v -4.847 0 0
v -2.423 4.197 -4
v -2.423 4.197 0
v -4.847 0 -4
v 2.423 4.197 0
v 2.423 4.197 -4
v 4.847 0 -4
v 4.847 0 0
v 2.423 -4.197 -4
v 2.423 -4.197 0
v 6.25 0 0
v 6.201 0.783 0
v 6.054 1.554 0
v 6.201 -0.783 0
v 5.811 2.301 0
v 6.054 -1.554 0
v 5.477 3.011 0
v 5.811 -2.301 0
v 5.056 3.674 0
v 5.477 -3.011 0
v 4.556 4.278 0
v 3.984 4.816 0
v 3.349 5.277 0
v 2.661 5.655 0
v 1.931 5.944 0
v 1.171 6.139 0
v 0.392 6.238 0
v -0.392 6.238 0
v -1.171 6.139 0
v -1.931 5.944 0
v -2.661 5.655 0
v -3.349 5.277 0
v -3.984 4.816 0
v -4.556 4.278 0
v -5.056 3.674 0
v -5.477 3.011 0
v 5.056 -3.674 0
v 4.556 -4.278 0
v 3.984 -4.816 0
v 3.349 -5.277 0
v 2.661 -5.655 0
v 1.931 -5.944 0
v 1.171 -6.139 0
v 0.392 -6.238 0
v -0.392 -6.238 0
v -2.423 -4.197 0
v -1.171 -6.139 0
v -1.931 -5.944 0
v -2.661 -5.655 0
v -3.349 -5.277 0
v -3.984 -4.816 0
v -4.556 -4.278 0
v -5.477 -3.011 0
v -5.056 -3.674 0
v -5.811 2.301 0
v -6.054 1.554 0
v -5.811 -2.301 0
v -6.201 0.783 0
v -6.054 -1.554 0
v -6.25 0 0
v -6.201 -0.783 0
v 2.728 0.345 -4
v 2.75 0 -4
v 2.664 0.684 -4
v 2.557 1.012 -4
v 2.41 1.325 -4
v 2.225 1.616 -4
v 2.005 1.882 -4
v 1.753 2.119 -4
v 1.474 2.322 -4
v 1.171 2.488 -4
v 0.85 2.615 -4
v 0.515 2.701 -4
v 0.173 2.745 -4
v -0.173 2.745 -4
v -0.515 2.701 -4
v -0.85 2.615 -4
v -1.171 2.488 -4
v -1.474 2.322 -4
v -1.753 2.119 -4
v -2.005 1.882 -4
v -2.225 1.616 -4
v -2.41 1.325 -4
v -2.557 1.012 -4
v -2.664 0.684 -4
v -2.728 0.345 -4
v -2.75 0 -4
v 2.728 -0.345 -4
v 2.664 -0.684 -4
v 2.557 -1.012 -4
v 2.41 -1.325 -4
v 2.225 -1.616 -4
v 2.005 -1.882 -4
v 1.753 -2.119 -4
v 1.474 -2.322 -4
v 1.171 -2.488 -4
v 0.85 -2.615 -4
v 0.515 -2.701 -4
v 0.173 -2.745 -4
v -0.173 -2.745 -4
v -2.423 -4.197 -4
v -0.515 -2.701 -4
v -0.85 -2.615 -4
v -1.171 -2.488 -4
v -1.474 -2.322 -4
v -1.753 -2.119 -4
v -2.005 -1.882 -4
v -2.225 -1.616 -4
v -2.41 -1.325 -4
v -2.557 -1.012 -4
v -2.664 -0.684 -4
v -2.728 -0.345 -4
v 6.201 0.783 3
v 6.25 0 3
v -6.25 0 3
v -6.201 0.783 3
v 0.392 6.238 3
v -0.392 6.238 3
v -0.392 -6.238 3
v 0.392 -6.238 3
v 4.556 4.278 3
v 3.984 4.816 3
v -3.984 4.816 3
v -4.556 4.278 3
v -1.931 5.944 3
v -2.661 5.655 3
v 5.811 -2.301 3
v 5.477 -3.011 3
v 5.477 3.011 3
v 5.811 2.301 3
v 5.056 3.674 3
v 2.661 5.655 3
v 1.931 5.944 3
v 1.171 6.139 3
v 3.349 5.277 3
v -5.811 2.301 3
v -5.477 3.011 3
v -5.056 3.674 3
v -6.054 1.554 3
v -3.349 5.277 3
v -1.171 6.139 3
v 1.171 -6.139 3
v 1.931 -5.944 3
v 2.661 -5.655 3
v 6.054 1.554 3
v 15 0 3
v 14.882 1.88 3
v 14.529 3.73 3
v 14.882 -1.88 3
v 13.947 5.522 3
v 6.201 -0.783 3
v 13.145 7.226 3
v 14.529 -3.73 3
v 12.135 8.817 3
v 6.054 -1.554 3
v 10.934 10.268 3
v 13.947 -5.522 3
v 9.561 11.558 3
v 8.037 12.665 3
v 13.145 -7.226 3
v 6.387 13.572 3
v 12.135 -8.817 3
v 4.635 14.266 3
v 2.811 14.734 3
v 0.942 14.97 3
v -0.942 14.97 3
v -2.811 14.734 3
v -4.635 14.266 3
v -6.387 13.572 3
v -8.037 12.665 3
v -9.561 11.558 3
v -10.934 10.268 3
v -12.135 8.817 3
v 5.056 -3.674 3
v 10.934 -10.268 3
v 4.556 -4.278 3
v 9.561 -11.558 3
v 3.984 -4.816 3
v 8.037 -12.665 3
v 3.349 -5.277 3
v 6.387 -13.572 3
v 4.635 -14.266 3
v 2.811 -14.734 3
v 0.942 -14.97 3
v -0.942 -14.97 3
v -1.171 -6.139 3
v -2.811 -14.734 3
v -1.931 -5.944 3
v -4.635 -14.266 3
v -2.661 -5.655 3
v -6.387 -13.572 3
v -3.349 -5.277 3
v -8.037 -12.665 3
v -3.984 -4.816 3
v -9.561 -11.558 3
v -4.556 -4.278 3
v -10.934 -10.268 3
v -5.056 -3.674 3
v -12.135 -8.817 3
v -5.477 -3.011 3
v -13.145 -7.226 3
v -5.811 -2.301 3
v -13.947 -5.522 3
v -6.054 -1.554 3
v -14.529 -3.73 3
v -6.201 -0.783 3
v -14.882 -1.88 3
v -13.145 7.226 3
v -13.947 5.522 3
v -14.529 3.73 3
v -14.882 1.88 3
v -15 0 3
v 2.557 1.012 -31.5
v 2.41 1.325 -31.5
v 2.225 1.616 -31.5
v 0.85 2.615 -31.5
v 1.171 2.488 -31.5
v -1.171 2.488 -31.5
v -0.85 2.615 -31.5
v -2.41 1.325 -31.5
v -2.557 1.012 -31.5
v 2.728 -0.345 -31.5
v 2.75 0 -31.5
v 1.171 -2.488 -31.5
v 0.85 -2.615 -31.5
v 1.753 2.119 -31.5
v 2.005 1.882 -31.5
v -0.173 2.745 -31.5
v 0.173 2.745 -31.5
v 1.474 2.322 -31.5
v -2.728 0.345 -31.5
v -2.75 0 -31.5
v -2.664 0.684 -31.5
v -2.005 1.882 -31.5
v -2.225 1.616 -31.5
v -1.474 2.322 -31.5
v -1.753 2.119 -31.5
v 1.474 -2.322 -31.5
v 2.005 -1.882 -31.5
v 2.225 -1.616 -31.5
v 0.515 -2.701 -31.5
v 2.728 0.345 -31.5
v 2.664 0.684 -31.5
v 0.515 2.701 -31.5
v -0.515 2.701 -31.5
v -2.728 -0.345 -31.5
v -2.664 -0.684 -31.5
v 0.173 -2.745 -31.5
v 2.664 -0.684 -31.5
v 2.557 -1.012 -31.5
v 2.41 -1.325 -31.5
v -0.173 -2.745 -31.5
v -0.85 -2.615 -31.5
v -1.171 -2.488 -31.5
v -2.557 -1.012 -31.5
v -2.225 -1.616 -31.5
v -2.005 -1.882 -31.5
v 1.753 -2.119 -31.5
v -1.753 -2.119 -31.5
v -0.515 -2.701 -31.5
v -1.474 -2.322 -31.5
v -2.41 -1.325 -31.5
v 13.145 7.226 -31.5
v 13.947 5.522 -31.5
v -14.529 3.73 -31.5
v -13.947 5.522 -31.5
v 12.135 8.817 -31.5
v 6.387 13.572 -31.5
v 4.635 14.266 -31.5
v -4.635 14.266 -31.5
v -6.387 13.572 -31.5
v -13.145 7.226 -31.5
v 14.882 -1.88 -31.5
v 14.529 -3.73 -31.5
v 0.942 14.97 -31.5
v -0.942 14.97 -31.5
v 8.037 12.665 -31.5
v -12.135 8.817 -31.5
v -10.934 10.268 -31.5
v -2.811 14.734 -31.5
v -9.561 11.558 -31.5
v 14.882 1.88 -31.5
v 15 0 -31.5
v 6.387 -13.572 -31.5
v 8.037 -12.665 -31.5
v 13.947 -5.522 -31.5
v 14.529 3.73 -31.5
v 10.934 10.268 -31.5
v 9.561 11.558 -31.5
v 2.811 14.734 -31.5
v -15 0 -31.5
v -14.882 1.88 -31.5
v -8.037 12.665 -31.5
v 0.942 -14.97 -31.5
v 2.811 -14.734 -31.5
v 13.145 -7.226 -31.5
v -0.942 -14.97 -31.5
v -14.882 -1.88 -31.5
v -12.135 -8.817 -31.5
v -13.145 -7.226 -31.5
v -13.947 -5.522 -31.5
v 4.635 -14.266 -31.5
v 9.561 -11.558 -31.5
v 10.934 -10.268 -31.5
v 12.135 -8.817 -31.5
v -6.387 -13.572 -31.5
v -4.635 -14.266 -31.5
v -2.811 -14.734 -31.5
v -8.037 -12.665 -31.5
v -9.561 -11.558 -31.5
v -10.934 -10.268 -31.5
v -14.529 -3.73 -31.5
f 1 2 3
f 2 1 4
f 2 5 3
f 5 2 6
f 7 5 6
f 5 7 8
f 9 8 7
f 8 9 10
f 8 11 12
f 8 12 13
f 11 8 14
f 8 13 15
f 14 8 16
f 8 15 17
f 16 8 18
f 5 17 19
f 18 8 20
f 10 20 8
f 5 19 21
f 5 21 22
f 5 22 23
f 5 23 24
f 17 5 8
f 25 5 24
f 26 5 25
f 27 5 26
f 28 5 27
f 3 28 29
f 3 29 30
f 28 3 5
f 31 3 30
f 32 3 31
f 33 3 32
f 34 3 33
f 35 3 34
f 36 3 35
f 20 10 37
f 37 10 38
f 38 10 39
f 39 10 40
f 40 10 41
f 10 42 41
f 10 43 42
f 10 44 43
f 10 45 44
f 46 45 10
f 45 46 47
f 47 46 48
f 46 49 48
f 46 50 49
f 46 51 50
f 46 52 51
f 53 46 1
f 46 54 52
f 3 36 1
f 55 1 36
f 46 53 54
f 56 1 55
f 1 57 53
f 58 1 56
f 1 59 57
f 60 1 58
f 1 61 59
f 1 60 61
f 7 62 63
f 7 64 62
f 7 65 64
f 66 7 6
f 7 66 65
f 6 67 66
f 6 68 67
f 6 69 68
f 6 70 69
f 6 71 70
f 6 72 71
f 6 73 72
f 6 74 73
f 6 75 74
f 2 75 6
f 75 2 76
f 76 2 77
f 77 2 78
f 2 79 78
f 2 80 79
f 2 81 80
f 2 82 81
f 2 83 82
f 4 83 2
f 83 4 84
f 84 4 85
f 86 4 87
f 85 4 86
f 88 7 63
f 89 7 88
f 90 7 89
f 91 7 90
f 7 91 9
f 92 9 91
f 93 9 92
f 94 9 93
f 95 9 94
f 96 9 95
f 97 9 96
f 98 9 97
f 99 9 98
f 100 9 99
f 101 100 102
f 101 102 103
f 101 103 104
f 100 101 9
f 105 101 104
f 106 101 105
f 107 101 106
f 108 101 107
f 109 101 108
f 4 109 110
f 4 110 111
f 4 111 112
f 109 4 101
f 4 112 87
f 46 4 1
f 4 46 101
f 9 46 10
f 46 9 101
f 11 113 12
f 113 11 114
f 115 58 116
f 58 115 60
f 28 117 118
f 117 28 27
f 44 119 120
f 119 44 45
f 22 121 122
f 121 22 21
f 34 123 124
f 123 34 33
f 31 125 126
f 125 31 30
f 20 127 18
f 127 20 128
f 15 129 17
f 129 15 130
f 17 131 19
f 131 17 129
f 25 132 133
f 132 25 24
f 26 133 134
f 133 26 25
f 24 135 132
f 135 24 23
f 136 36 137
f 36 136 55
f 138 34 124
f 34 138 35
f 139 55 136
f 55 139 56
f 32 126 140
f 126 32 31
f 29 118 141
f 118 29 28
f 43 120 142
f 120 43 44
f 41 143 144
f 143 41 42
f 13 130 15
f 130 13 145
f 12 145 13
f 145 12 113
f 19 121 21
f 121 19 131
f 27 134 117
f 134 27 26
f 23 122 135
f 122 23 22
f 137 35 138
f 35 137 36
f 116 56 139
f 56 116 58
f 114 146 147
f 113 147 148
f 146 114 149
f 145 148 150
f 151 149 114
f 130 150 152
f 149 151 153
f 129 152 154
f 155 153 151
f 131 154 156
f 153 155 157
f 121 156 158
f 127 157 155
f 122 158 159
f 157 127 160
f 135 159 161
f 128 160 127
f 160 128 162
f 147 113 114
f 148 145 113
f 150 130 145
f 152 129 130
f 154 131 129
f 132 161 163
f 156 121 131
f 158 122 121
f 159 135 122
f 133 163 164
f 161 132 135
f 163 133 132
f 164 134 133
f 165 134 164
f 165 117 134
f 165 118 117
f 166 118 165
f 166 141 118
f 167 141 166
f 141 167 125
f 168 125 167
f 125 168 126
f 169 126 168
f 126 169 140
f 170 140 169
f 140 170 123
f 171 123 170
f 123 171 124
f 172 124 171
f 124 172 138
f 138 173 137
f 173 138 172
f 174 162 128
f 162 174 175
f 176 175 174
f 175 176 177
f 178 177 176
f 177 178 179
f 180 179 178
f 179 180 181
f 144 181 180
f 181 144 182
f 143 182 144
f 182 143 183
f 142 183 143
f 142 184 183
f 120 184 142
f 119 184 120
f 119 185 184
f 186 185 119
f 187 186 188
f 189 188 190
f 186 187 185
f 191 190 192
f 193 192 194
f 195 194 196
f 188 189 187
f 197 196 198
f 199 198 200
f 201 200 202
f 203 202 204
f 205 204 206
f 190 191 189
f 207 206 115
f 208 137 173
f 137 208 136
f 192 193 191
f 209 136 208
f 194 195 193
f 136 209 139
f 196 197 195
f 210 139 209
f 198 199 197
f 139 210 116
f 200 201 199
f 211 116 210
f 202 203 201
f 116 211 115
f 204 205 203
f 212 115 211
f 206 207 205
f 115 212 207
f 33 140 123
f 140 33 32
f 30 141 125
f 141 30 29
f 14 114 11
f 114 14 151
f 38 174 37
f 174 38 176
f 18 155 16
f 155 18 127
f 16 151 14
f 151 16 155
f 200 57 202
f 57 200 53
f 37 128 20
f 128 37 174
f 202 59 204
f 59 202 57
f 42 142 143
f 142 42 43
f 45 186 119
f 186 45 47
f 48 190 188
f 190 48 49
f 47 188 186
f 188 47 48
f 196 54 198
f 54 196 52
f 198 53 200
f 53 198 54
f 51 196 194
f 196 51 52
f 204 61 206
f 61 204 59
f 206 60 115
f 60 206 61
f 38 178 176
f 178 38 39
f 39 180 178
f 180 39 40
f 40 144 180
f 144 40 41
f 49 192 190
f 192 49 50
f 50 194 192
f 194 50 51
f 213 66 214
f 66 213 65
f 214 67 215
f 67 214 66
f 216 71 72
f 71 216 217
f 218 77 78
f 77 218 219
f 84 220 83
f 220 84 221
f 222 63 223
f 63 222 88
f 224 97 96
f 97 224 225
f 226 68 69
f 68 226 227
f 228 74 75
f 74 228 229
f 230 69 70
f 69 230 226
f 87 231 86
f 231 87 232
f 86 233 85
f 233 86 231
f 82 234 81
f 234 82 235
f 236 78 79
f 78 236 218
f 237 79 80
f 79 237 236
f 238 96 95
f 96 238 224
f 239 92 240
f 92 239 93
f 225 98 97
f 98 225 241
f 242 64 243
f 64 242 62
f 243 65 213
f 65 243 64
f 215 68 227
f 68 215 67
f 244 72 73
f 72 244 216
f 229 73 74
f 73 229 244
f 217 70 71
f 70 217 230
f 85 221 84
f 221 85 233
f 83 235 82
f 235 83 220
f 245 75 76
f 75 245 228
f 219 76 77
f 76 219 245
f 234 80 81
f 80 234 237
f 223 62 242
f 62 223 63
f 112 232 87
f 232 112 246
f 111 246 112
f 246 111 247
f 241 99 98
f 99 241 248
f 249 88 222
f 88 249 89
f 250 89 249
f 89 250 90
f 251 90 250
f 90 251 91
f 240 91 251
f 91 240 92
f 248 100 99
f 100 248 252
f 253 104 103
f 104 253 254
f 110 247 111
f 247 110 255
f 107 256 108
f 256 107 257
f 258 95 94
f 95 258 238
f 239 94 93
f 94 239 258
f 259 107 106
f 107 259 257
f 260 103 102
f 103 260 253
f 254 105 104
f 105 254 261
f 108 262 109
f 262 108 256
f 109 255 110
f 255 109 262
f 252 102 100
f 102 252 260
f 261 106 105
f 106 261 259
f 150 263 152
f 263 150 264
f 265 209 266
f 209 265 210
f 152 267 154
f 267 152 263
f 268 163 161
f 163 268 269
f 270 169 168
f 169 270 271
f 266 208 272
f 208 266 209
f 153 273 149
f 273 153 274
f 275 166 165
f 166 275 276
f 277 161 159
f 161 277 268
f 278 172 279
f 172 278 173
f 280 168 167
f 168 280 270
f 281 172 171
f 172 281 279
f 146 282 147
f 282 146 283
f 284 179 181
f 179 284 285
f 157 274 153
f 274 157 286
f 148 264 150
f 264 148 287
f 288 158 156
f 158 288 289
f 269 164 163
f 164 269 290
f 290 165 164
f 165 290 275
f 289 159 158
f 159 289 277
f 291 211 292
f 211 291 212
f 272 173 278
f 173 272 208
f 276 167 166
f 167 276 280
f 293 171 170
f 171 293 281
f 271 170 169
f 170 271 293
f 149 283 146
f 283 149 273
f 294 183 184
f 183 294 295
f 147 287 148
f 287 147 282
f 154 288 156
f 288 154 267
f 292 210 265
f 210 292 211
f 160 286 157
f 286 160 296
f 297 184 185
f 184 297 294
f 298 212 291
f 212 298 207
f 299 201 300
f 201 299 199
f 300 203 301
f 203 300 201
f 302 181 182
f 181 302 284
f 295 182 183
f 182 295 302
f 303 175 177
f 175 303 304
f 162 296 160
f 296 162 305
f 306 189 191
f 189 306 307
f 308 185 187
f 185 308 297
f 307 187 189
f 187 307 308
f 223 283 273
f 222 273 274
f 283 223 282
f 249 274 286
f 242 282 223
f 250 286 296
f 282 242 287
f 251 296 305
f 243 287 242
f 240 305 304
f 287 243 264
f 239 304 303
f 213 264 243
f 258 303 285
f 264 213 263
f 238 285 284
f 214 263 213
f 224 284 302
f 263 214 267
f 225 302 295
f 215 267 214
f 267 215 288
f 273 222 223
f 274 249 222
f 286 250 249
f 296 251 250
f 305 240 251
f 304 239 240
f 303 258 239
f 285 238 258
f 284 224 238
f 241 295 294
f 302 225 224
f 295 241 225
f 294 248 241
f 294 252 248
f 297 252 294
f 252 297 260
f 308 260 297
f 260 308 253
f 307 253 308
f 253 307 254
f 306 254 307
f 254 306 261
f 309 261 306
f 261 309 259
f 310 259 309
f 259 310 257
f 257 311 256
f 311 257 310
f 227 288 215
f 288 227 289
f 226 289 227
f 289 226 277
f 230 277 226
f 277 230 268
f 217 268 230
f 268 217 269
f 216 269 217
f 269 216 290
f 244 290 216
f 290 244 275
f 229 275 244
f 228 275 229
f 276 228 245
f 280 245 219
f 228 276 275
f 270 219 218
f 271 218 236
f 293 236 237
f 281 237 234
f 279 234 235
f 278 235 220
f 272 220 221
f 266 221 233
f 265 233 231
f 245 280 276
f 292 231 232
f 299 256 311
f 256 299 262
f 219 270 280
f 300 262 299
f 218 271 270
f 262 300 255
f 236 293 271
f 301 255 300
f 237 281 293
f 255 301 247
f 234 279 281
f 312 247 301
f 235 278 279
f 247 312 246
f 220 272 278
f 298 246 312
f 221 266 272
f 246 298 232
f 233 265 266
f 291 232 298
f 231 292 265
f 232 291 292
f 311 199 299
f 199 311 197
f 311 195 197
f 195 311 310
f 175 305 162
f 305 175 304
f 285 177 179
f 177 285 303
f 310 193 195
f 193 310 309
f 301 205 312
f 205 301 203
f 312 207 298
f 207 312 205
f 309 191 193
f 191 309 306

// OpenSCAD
$fn = 50;

difference() {
	union() {
		translate(v = [0, 0, -31.5]) {
			cylinder(h = 34.5, r = 15.0);
		}
	}
	union() {
		translate(v = [0, 0, 0]) {
			rotate(a = [0, 0, 0]) {
				difference() {
					union() {
						translate(v = [0, 0, -4]) {
							linear_extrude(height = 4) {
								polygon(points = [[4.8468, 0.0], [2.4234000000000004, 4.197451927062417], [-2.423399999999999, 4.197451927062417], [-4.8468, 5.935618106107392e-16], [-2.423400000000002, -4.197451927062416], [2.423399999999997, -4.197451927062419]]);
							}
						}
					}
					union();
				}
			}
		}
		#cylinder(h = 3, r = 6.25);
		#translate(v = [0, 0, -100.0]) {
			cylinder(h = 200, r = 2.75);
		}
	}
}
